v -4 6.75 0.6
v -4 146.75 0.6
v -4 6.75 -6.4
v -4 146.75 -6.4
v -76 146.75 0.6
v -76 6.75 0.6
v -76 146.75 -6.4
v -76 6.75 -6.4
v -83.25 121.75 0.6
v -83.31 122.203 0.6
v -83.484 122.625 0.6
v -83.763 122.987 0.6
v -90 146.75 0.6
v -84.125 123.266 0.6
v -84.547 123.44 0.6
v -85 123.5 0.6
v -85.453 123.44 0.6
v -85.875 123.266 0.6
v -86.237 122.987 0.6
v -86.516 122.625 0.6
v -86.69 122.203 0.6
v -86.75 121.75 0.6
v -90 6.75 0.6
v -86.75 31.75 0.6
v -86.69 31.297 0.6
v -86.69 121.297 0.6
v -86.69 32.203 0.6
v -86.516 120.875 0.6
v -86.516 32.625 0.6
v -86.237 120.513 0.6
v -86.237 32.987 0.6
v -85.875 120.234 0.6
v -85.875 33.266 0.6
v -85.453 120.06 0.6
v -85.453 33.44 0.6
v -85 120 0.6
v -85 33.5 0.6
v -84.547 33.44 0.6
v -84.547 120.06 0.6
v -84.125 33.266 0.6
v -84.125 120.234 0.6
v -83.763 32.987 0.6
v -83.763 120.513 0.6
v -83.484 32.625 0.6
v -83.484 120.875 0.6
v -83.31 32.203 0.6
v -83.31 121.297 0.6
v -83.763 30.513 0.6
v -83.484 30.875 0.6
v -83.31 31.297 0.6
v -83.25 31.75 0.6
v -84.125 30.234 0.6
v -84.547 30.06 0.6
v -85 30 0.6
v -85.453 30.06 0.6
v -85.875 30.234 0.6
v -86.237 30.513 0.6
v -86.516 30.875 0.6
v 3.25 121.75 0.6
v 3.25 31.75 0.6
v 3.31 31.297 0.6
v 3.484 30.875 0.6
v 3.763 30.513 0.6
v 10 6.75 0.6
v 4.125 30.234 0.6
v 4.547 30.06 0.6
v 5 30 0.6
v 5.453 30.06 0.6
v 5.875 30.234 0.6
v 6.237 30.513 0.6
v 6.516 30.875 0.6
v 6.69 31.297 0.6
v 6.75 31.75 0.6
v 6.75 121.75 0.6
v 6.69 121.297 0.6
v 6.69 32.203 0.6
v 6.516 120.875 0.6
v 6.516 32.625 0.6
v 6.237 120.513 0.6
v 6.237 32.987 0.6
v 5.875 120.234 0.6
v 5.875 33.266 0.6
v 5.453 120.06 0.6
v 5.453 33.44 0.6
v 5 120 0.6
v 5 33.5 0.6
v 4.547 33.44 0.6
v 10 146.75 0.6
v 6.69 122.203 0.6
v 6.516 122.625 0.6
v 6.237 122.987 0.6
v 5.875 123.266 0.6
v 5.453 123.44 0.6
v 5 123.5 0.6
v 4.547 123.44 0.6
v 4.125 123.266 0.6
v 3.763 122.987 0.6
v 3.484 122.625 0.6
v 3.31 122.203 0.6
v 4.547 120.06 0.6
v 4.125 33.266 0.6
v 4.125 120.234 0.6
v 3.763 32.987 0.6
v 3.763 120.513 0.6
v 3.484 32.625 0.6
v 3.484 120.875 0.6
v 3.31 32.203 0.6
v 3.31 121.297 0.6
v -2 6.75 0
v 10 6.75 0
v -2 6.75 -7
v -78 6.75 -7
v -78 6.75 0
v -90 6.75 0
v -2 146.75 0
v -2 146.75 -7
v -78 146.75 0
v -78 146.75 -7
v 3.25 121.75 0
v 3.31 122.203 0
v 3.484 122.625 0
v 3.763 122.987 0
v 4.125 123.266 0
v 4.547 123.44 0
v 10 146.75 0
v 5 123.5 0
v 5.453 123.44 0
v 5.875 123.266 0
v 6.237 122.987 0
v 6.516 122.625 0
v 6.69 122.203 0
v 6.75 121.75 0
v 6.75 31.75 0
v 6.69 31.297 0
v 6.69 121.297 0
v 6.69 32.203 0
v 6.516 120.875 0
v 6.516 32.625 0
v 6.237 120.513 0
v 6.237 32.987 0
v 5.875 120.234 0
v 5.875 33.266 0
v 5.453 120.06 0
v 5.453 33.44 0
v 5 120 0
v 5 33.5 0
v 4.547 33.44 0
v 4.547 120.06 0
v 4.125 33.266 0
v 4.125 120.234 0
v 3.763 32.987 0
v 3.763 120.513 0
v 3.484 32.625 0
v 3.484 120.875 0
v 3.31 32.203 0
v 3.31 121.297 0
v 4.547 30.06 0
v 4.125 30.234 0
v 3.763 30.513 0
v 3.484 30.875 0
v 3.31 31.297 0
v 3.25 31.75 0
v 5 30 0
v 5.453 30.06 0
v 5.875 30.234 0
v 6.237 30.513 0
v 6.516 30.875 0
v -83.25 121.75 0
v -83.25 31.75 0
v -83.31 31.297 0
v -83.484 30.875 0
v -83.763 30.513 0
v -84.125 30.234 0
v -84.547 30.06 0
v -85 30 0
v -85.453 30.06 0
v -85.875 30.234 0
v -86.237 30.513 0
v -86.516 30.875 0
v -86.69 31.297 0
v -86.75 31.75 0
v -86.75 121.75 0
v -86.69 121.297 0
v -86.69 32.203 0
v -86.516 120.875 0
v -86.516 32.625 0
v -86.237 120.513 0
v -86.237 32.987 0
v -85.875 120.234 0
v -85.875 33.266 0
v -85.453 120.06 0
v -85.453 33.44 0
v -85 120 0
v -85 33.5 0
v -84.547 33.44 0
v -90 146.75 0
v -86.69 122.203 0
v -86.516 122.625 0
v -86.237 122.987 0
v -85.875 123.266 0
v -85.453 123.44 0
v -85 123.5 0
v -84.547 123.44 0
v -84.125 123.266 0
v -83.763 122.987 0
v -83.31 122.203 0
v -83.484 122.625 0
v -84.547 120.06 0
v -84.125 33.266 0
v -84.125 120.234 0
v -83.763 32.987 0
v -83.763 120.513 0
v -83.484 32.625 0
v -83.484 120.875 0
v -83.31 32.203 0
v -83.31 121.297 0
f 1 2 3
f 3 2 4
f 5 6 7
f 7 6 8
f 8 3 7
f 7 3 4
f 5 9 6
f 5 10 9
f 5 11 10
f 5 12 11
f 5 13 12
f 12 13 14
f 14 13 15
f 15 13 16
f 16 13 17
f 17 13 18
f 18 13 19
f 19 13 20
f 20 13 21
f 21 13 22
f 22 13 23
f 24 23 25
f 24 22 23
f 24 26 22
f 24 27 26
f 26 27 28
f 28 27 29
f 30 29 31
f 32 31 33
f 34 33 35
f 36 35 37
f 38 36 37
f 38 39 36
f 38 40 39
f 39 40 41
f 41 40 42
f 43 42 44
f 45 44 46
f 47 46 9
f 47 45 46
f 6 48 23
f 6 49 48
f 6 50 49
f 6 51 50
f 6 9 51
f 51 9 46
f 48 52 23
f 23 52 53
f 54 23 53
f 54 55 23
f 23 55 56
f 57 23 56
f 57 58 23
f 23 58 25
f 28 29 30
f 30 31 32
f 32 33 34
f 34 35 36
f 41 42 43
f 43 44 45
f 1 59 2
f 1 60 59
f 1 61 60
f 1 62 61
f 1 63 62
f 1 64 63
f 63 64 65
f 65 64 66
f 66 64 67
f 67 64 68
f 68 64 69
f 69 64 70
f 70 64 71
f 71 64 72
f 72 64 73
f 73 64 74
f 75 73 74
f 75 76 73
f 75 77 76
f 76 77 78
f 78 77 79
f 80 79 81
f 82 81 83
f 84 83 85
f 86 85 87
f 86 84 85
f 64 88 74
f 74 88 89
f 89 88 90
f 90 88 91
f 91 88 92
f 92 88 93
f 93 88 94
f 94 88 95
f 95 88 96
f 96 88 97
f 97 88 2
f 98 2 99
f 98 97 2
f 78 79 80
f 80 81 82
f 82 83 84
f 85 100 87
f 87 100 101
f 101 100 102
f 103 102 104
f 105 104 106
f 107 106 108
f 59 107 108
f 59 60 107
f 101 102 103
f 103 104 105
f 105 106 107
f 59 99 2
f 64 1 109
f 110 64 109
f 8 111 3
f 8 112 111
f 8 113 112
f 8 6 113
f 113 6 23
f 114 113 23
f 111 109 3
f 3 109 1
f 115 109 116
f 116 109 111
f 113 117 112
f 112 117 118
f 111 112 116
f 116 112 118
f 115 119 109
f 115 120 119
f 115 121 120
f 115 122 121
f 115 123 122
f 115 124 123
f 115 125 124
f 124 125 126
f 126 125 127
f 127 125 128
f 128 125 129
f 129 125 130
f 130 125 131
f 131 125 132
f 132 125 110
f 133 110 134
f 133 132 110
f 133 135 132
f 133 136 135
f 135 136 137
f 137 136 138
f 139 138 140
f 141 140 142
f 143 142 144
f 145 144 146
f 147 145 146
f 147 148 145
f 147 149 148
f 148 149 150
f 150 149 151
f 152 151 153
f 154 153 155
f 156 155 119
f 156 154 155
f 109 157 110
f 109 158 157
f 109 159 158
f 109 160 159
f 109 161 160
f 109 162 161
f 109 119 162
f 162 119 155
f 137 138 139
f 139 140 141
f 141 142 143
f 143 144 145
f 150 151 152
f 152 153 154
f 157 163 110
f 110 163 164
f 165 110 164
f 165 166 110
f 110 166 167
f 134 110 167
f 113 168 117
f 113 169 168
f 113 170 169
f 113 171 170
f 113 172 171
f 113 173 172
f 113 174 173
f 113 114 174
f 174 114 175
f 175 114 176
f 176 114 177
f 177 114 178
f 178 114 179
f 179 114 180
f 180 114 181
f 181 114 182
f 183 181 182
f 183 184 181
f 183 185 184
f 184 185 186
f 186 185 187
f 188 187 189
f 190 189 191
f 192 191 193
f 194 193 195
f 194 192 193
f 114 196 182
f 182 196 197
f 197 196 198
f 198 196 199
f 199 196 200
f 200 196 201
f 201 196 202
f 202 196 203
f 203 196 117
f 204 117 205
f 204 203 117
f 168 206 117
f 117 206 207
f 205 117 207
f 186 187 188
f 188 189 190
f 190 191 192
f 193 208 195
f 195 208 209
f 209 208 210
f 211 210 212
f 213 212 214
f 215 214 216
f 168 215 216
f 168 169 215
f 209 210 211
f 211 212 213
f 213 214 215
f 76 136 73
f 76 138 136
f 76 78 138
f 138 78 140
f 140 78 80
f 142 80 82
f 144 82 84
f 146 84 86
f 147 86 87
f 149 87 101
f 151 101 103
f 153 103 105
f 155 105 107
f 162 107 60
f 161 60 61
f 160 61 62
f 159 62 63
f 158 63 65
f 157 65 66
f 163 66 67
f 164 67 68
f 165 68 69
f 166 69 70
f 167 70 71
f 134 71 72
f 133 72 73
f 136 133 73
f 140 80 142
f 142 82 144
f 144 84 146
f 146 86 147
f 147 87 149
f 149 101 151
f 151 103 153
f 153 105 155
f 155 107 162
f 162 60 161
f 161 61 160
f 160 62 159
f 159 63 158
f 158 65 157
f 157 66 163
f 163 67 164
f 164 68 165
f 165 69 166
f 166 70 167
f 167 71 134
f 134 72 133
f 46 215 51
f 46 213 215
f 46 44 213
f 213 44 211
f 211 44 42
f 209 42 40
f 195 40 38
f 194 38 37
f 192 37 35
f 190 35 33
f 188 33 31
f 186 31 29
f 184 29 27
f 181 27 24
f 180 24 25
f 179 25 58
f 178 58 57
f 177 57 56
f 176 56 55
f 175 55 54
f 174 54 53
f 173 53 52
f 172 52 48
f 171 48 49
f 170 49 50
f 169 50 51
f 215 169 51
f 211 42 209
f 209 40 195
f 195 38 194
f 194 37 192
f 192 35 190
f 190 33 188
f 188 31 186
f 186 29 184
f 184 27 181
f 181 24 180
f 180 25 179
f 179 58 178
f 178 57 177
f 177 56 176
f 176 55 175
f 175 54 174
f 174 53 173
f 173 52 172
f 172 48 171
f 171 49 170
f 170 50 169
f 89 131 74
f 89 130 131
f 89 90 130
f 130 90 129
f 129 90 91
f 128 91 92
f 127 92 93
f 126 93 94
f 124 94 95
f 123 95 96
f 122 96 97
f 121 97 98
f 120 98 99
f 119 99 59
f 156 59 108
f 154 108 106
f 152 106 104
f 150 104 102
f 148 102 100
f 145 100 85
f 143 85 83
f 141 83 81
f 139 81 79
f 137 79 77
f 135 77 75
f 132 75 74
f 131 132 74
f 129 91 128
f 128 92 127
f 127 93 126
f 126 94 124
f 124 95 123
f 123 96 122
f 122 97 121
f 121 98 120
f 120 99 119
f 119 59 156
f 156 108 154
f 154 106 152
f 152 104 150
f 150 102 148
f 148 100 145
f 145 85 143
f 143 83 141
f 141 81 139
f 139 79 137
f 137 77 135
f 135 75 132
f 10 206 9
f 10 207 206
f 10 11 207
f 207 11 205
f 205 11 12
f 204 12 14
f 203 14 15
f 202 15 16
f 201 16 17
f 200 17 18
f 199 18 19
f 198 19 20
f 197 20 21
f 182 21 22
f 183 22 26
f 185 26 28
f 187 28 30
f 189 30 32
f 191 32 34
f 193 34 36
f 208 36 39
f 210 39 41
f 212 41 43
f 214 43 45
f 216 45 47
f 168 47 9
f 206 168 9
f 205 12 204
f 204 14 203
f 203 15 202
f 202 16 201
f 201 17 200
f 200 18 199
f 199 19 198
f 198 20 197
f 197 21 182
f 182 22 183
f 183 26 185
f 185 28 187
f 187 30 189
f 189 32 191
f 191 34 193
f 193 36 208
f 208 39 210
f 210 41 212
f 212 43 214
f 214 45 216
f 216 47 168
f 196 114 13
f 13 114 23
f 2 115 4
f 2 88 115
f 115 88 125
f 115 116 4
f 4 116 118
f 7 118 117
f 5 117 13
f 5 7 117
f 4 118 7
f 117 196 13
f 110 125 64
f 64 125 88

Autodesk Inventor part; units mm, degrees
ref_plane "YZ Plane" through (0, 0, 0) normal (1, 0, 0) x (0, 1, 0)
ref_plane "XZ Plane" through (0, 0, 0) normal (0, 1, 0) x (-1, 0, 0)
ref_plane "XY Plane" through (0, 0, 0) normal (0, 0, 1) x (1, 0, 0)
sketch "Skizze1" plane through (0, 0, 0) normal (0, 0, 1) x (1, 0, 0)
  line L0 (-90, 0) -> (-90, 36.75) construction
  line L1 (10, 0) -> (10, 36.75) construction
  line L2 (-90, 116.75) -> (-90, 147.085) construction
  line L3 (10, 147.085) -> (10, 116.75) construction
  circle A0 centre (-85, 121.75) radius 1.75 projected
  circle A1 centre (5, 121.75) radius 1.75 projected
  circle A2 centre (-85, 31.75) radius 1.75 projected
  circle A3 centre (5, 31.75) radius 1.75 projected
  line L4 (-90, 6.75) -> (10, 6.75)
  line L5 (10, 6.75) -> (10, 146.75)
  line L6 (10, 146.75) -> (-90, 146.75)
  line L7 (-90, 146.75) -> (-90, 6.75)
  point P0 (0, 0)
  dimension "d0" = 25
  dimension "d1" = 25
extrude "Extrusion1" add sketch "Skizze1" along normal blind 0.6
sketch "Skizze2" plane through (0, 0, 0) normal (0, 0, -1) x (-1, 0, 0)
  line L0 (90, 6.75) -> (-10, 6.75) projected
  line L1 (-10, 146.75) -> (90, 146.75) projected
  line L2 (2, 6.75) -> (78, 6.75)
  line L3 (78, 6.75) -> (78, 146.75)
  line L4 (78, 146.75) -> (2, 146.75)
  line L5 (2, 146.75) -> (2, 6.75)
  line L6 (-10, 6.75) -> (-10, 146.75) projected
  line L7 (90, 146.75) -> (90, 6.75) projected
  line L8 (78, 146.75) -> (2, 146.75)
  line L9 (2, 146.75) -> (2, 6.75)
  line L10 (2, 6.75) -> (78, 6.75)
  line L11 (78, 6.75) -> (78, 146.75)
  point P0 (0, 0)
  dimension "d4" = 12
  dimension "d5" = 12
extrude "Extrusion3" add sketch "Skizze2" along normal blind 7 contours L0 L5 L1 L3
sketch "Skizze3" plane through (0, 0, 0.6) normal (0, 0, 1) x (1, 0, 0)
  line L0 (-2, 6.75) -> (-78, 6.75) construction
  line L1 (-78, 6.75) -> (-78, 146.75) construction
  line L2 (-78, 146.75) -> (-2, 146.75) construction
  line L3 (-2, 146.75) -> (-2, 6.75) construction
  line L4 (-90, 6.75) -> (10, 6.75) projected
  line L5 (-78, 146.75) -> (-2, 146.75) projected
  line L6 (-4, 6.75) -> (-76, 6.75)
  line L7 (-76, 6.75) -> (-76, 146.75)
  line L8 (-76, 146.75) -> (-4, 146.75)
  line L9 (-4, 146.75) -> (-4, 6.75)
  point P0 (0, 0)
  dimension "d10" = 2
  dimension "d11" = 2
extrude "Extrusion4" cut sketch "Skizze3" against normal blind 7
properties part number "PCB-Mount"
